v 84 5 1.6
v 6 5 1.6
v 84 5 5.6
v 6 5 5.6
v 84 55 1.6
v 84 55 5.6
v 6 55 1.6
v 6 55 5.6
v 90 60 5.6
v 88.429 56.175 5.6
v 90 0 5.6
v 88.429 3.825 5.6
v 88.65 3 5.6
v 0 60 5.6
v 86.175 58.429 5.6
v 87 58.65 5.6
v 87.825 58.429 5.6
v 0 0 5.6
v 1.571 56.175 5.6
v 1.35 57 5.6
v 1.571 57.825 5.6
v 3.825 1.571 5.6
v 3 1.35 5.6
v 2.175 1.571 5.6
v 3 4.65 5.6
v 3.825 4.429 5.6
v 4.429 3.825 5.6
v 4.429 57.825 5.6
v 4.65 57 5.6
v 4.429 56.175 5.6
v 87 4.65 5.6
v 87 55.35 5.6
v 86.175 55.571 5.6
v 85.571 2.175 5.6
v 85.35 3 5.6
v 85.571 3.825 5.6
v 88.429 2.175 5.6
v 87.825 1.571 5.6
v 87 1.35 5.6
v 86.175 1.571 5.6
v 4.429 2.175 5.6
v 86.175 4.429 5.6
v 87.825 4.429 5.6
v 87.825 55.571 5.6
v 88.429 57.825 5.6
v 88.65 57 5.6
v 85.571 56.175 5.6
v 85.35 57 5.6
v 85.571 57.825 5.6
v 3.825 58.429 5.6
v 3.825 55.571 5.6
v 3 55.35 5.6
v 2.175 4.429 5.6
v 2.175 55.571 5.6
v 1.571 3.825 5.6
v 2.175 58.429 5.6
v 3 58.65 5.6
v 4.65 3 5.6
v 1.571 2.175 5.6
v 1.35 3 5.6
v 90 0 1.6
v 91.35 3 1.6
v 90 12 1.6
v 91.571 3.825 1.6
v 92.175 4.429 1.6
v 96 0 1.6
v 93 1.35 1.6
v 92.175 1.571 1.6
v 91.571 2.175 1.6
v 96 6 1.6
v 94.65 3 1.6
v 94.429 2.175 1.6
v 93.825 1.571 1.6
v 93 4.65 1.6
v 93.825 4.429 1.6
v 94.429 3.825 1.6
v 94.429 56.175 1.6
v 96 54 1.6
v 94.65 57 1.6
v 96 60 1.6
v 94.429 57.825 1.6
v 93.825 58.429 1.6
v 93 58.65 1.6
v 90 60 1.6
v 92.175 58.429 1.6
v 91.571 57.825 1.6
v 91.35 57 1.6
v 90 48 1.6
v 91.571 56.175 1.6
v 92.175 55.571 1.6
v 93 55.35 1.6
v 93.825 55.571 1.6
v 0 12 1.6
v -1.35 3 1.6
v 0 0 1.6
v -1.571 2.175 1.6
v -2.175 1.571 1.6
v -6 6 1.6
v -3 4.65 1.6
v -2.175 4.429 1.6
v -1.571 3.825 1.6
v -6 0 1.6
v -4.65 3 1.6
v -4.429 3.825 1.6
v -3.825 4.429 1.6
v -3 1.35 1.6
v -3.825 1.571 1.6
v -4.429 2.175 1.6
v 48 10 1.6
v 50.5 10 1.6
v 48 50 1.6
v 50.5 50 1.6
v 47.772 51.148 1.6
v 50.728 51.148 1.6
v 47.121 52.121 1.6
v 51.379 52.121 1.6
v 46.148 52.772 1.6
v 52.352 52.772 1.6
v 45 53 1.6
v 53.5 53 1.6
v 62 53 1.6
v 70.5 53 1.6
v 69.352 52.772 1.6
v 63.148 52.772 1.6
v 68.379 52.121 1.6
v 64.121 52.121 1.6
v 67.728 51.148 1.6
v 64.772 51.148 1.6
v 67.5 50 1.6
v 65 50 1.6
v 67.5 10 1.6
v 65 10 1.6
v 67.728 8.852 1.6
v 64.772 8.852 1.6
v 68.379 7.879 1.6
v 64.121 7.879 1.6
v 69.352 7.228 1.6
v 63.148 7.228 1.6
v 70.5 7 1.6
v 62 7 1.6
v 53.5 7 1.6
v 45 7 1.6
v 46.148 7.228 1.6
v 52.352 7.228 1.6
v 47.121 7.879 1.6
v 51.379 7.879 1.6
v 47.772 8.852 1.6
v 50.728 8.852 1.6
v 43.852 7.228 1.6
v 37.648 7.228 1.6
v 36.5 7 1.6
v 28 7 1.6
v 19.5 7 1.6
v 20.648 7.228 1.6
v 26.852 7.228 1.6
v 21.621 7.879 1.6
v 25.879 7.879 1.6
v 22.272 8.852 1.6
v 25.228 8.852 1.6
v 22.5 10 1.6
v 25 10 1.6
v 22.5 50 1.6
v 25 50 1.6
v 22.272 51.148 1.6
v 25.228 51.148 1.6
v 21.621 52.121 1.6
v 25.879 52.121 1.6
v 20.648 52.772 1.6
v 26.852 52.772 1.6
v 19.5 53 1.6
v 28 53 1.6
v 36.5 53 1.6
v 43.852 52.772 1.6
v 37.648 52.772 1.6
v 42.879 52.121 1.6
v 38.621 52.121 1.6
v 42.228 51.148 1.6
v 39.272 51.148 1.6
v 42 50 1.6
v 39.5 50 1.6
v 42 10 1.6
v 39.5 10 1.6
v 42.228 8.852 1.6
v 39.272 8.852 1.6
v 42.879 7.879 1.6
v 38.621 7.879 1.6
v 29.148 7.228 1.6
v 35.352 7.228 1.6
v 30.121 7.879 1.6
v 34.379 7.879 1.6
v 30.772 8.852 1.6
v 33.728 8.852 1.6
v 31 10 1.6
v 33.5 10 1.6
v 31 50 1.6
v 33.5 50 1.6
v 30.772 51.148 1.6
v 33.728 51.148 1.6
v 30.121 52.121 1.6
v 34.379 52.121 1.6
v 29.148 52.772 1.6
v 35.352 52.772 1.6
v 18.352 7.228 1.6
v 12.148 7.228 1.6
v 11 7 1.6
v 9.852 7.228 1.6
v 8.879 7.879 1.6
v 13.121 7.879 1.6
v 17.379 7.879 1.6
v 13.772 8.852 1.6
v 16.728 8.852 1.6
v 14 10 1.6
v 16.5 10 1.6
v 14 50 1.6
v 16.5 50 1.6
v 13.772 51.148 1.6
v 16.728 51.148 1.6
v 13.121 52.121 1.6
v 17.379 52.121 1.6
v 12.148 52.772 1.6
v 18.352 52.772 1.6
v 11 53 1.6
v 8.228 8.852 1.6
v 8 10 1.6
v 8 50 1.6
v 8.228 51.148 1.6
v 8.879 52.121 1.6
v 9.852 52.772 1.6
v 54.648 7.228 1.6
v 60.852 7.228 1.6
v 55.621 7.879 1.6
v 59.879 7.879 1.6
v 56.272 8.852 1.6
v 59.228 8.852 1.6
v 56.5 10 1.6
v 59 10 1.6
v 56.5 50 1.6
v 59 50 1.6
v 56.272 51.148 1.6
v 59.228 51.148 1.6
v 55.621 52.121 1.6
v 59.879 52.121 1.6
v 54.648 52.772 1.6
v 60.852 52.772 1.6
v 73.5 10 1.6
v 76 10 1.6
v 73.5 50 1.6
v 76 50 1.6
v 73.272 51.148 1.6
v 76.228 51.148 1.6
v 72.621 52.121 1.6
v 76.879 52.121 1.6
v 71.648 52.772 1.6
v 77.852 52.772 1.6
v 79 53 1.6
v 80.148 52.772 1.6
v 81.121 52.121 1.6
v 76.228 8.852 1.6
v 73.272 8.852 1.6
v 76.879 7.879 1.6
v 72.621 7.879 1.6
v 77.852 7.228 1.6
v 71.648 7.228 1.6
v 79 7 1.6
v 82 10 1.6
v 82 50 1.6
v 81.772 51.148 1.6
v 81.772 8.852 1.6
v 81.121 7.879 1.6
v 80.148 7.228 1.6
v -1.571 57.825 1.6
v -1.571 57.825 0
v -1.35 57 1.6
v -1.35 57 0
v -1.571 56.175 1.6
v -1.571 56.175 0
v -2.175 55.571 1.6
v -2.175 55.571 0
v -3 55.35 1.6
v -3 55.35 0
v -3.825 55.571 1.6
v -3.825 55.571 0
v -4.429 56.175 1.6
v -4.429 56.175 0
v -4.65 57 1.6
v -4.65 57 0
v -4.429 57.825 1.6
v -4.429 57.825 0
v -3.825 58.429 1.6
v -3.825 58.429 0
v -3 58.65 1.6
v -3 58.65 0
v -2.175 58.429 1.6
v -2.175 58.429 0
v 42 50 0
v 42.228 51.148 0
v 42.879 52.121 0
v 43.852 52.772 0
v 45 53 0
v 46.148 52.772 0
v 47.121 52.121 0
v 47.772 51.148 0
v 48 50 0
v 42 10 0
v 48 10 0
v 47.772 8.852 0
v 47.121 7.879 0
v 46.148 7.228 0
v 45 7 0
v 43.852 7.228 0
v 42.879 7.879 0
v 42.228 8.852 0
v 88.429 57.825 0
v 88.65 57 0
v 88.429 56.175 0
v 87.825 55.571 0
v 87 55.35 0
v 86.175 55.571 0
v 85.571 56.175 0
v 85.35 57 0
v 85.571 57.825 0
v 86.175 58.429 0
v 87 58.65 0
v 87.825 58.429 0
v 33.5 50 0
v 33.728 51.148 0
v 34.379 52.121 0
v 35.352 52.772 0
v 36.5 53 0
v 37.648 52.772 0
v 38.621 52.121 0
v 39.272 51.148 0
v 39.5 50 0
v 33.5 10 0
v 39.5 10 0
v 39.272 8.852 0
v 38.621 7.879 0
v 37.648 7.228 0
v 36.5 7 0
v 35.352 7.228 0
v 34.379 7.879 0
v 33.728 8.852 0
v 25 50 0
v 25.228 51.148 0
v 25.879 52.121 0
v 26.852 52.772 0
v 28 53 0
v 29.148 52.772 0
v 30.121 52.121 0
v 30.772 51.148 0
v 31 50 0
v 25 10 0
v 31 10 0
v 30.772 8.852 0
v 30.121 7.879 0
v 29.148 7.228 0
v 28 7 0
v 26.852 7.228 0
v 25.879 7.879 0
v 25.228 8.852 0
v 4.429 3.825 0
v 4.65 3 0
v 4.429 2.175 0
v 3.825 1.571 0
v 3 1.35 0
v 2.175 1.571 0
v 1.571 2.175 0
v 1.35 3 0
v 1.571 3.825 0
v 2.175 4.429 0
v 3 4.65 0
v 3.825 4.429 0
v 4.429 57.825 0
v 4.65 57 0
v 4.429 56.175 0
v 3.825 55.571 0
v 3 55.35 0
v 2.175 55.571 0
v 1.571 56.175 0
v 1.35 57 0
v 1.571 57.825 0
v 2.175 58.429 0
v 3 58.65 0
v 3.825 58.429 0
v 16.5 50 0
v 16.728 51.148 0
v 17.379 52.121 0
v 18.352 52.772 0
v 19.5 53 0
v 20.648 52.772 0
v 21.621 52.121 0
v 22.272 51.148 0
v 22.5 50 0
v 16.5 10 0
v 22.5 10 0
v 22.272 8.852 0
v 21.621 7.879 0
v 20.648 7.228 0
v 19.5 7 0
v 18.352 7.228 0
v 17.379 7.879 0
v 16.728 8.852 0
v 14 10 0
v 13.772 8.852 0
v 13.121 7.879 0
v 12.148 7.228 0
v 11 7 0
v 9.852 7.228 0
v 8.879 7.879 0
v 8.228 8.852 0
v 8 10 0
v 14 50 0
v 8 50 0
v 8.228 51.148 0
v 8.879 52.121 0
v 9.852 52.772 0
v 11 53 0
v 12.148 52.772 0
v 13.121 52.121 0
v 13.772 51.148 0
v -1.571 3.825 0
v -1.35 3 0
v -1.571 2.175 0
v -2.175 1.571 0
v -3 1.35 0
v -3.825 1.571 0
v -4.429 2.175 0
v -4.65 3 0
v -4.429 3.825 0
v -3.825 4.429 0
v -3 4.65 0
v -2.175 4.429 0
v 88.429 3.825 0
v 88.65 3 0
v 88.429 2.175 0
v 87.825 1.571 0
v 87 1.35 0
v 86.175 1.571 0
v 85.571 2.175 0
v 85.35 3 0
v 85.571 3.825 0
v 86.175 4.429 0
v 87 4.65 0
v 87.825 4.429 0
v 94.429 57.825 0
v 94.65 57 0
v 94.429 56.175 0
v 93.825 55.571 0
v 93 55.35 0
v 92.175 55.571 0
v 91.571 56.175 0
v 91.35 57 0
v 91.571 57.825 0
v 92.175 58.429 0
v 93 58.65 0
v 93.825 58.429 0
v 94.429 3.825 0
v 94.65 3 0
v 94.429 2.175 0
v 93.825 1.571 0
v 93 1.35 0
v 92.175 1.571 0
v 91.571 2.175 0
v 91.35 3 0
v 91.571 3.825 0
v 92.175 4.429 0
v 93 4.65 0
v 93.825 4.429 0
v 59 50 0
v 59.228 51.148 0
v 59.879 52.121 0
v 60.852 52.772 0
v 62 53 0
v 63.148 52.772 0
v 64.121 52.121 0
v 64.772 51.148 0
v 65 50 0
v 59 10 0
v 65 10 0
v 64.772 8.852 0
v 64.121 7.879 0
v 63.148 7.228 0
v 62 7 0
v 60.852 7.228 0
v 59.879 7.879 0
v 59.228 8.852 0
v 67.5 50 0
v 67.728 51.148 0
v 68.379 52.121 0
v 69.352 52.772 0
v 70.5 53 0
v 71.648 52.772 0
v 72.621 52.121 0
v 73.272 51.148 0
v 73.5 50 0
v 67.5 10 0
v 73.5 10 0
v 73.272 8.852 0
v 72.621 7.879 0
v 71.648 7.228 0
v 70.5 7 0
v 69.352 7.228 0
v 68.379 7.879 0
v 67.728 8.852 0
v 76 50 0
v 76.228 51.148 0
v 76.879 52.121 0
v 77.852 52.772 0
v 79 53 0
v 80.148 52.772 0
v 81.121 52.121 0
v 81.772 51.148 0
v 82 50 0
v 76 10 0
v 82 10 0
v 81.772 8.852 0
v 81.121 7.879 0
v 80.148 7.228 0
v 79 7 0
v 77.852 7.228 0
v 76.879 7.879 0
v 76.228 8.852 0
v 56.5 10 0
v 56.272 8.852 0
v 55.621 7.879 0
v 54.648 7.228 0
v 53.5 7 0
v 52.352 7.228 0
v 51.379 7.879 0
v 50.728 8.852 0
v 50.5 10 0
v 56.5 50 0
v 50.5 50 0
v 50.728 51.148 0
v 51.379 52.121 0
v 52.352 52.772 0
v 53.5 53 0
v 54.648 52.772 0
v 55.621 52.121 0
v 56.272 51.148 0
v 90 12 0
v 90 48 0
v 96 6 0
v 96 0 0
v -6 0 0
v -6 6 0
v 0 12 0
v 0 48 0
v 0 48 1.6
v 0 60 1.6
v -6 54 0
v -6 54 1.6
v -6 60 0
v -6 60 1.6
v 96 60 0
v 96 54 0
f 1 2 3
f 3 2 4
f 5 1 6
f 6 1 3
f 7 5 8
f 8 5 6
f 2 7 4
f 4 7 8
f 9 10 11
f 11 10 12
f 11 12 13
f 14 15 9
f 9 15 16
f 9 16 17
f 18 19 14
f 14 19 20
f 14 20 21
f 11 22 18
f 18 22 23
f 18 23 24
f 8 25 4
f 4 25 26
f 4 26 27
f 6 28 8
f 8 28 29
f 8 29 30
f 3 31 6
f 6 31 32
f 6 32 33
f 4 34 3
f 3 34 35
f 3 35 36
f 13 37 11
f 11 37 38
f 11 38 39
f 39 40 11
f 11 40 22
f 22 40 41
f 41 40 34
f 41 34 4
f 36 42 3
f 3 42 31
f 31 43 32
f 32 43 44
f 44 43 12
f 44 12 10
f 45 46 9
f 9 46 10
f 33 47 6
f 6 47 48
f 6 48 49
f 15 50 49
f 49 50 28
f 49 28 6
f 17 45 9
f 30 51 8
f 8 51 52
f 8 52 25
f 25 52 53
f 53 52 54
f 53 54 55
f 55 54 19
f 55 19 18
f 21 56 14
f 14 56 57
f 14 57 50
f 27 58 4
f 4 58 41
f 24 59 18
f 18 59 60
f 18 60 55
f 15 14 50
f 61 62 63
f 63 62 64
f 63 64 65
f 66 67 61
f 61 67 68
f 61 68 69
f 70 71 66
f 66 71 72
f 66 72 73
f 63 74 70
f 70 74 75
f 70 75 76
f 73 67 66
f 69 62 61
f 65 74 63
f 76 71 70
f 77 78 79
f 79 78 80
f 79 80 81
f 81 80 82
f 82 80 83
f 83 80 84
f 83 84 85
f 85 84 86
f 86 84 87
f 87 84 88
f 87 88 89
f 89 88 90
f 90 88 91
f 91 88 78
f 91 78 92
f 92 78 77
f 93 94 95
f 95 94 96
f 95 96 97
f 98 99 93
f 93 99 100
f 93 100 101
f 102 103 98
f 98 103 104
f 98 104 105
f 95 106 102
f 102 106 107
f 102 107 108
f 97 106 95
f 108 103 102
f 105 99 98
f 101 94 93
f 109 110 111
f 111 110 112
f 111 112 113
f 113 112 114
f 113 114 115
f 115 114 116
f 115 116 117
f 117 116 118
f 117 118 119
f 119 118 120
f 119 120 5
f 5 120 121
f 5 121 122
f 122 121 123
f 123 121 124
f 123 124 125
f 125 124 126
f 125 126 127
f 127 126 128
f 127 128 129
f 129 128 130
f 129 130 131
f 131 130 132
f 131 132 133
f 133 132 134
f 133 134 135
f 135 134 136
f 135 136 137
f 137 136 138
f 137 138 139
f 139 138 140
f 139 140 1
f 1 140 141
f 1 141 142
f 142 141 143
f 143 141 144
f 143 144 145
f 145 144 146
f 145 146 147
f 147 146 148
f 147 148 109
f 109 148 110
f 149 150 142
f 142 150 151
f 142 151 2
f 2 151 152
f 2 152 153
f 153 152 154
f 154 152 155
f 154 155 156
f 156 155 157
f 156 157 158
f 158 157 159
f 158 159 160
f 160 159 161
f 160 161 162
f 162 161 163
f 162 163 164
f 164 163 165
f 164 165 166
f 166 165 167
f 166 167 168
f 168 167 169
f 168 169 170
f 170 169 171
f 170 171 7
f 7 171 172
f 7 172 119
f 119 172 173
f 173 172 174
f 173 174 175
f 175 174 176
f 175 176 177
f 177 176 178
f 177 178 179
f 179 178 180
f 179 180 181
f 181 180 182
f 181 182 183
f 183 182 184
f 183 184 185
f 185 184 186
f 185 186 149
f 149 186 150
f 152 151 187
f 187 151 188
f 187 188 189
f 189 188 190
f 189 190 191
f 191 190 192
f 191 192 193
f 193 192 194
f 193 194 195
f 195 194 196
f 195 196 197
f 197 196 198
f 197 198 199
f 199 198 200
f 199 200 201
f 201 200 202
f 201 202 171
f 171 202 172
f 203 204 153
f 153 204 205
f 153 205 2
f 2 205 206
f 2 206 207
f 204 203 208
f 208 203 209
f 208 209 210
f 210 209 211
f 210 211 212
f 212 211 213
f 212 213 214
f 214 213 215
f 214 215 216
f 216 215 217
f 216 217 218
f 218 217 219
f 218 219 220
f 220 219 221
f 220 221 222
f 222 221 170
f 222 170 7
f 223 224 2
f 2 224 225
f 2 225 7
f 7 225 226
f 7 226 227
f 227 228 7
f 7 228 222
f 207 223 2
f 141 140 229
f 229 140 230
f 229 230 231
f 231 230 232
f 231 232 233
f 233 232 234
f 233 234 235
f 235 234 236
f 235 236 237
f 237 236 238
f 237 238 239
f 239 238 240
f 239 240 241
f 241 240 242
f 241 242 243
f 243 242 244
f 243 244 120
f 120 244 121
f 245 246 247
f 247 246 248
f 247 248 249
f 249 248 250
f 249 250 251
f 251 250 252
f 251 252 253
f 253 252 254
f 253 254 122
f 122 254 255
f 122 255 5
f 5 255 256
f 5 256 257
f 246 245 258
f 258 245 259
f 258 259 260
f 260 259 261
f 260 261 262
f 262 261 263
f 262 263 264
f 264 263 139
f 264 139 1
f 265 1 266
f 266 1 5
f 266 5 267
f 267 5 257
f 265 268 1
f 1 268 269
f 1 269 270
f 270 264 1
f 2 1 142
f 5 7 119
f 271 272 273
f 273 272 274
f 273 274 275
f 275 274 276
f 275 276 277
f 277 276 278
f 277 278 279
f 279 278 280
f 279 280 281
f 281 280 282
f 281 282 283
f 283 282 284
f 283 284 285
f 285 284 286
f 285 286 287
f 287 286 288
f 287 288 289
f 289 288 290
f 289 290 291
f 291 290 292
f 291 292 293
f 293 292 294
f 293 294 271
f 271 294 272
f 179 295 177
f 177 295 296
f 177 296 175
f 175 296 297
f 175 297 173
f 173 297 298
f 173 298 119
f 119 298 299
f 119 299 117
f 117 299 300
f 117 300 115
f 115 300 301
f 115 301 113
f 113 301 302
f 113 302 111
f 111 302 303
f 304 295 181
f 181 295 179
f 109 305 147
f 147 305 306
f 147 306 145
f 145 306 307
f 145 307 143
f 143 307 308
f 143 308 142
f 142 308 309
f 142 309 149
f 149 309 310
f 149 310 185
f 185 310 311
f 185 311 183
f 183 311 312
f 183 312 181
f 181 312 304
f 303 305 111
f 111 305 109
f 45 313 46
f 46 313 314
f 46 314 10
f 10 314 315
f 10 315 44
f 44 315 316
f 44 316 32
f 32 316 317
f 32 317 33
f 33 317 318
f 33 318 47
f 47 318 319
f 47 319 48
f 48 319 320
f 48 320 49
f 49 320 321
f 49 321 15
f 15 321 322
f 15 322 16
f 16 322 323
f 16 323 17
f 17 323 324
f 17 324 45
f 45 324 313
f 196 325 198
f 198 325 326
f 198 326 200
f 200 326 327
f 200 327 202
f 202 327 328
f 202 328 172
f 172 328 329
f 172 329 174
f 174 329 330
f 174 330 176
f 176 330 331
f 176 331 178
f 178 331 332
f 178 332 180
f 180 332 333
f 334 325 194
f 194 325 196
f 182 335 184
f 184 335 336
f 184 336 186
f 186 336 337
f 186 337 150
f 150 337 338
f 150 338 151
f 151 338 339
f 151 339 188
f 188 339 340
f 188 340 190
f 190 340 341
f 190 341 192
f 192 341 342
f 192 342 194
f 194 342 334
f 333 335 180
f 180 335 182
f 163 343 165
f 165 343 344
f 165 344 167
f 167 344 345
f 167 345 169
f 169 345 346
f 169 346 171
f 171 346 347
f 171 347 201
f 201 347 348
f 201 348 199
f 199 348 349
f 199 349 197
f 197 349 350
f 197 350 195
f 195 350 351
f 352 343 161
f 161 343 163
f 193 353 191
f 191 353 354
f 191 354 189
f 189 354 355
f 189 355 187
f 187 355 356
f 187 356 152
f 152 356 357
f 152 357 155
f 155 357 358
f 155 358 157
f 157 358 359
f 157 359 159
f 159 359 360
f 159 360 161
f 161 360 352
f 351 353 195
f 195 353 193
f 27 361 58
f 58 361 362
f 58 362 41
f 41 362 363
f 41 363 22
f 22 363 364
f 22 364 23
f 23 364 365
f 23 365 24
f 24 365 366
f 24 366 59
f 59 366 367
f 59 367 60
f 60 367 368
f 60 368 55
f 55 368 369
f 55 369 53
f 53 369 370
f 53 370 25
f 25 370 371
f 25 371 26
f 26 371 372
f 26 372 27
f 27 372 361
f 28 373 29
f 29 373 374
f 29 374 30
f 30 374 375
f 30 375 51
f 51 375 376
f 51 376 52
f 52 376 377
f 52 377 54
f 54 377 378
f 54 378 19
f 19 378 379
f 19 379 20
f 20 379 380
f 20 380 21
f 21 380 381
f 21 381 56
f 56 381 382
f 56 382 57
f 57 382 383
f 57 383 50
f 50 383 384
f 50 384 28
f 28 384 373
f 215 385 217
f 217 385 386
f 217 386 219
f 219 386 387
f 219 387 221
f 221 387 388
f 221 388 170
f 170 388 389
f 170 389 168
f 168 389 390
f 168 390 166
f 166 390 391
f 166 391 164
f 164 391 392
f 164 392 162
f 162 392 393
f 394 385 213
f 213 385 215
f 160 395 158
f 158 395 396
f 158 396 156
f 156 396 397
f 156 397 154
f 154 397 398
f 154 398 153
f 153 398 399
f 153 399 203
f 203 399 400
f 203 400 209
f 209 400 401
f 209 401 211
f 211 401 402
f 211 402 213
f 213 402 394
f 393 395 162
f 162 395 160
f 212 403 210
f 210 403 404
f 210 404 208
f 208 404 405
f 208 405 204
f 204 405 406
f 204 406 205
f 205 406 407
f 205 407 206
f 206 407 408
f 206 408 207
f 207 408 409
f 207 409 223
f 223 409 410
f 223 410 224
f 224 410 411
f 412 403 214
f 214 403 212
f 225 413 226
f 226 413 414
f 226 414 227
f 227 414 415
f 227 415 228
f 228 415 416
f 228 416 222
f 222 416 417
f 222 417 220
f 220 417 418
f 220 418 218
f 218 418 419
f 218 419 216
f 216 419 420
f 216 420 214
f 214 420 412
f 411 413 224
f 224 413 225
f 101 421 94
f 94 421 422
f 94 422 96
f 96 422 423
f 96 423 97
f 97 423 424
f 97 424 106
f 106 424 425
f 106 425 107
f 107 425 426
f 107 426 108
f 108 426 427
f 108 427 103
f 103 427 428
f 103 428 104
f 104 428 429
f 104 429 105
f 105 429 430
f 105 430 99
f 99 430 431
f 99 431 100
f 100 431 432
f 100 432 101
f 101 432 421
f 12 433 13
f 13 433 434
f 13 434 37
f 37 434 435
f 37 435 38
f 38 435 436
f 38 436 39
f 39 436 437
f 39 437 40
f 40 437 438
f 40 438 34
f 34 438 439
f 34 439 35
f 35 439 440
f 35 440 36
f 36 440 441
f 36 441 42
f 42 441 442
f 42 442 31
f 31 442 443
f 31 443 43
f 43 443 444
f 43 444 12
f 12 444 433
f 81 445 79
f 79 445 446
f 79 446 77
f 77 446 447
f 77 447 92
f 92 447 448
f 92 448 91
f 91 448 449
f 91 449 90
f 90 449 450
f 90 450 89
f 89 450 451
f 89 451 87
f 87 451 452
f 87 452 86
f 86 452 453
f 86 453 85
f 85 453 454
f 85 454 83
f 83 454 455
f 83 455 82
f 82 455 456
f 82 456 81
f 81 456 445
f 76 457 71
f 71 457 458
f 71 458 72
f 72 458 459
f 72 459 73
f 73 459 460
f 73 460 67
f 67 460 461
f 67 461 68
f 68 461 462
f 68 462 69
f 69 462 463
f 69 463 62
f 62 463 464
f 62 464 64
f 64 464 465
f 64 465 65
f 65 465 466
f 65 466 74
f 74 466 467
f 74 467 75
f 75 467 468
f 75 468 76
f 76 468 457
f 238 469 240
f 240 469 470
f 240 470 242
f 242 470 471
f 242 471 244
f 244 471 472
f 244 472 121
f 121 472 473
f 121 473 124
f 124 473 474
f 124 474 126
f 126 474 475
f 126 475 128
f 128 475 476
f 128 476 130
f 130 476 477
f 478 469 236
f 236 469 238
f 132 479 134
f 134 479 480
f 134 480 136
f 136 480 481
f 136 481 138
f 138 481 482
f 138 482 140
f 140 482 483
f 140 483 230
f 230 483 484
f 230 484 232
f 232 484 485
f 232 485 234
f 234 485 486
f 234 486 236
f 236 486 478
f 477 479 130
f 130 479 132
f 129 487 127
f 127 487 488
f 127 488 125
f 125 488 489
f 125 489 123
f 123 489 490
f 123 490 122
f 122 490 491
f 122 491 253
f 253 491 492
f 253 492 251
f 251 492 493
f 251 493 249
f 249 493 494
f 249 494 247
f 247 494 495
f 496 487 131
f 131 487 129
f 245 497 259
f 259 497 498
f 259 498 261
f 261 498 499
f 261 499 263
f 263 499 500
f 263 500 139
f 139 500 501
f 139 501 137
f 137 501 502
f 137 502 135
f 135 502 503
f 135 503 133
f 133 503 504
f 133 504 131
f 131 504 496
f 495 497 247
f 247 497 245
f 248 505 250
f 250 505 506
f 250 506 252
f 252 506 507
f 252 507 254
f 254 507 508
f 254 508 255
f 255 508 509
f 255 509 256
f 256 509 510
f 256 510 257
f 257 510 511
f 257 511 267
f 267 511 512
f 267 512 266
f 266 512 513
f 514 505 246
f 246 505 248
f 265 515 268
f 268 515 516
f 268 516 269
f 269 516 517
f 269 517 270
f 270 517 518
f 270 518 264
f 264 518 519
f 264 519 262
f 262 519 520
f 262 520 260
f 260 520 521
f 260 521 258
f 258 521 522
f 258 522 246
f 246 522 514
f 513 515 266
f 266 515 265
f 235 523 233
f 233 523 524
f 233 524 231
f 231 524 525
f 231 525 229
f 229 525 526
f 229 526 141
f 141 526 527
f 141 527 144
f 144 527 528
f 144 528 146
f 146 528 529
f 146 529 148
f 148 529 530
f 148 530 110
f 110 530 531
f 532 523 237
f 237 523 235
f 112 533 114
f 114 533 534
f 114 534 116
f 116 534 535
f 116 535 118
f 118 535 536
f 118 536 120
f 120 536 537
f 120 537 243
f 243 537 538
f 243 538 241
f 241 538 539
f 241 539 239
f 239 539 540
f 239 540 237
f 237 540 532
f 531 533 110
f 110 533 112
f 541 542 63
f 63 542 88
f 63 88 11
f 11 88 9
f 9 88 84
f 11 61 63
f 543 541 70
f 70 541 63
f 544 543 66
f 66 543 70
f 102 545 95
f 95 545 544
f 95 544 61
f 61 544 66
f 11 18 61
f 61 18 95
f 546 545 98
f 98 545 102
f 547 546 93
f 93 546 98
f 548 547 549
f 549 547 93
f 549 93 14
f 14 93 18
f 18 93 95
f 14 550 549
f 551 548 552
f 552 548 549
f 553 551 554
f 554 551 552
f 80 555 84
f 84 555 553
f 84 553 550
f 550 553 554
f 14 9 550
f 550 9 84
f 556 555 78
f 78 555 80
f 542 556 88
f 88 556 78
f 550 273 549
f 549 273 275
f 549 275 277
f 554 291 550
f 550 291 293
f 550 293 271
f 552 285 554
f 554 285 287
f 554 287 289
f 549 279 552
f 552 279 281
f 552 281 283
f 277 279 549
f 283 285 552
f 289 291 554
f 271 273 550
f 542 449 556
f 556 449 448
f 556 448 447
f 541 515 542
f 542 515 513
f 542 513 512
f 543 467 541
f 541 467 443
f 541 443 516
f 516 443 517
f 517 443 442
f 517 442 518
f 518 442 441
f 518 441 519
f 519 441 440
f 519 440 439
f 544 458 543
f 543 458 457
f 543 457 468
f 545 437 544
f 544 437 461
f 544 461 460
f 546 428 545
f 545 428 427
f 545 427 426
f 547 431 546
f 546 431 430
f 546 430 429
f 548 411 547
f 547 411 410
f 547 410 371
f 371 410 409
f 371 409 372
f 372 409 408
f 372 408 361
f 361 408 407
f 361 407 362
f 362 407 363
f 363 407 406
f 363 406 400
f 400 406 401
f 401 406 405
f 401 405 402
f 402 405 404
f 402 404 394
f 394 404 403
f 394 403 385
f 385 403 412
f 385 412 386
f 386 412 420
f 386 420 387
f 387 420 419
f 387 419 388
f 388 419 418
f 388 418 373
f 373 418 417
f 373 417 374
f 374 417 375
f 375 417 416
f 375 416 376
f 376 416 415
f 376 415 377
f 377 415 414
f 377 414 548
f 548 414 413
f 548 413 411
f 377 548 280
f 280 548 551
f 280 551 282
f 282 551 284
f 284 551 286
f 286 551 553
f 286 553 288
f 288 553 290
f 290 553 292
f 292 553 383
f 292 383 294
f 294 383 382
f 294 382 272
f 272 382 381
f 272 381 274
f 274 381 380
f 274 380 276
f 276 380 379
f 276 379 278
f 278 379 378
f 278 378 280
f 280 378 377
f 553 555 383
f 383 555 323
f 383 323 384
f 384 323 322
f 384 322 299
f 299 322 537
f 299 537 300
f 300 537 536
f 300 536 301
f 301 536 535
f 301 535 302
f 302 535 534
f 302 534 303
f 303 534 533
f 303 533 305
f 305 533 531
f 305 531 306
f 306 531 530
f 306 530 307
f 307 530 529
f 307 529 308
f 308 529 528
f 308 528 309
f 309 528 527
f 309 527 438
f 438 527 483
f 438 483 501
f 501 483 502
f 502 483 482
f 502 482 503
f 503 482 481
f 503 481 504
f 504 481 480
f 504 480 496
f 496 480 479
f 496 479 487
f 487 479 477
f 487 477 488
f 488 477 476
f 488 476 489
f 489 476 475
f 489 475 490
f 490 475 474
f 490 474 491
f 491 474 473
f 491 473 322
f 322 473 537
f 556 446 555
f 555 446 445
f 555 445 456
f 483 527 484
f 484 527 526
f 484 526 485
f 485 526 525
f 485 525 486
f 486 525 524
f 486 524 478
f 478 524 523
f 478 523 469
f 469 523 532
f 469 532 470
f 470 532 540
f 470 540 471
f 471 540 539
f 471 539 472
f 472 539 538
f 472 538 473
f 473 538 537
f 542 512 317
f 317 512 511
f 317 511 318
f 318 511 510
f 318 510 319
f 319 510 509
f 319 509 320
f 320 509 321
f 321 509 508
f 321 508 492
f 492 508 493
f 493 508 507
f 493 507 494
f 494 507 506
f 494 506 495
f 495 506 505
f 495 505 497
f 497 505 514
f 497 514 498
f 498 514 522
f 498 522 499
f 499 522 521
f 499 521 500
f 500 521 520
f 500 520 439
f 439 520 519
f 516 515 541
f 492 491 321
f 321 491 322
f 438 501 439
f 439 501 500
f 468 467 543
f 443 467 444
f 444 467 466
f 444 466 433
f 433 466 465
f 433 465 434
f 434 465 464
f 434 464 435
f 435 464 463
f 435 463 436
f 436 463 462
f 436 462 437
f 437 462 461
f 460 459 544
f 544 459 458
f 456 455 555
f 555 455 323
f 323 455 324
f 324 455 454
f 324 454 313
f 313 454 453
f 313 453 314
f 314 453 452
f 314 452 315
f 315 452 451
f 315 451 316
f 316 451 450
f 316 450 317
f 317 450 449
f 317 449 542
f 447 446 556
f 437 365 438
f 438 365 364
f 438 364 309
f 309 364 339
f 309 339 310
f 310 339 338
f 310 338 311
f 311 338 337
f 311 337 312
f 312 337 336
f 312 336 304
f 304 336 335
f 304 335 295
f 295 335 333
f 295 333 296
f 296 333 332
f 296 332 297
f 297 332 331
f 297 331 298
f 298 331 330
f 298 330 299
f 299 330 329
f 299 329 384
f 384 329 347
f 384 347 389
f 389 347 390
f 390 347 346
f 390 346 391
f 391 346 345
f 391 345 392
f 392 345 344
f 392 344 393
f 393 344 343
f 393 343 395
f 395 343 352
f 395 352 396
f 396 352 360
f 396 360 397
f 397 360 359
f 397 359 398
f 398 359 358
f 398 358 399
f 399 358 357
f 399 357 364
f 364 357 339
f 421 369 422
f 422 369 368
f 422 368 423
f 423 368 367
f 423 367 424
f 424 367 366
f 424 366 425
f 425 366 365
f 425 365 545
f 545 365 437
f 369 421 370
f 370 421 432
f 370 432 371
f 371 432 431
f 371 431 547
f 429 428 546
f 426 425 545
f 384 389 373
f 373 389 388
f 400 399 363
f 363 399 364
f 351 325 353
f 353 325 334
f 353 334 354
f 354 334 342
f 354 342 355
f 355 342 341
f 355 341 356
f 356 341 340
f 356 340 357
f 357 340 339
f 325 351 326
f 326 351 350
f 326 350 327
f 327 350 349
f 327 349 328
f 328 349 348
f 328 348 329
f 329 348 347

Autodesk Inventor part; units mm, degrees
ref_plane "YZ Plane" through (0, 0, 0) normal (1, 0, 0) x (0, 1, 0)
ref_plane "XZ Plane" through (0, 0, 0) normal (0, 1, 0) x (-1, 0, 0)
ref_plane "XY Plane" through (0, 0, 0) normal (0, 0, 1) x (1, 0, 0)
sketch "Sketch1" plane through (0, 0, 0) normal (0, 0, 1) x (1, 0, 0)
  line L0 (0, 0) -> (90, 0)
  line L1 (90, 0) -> (90, 60)
  line L2 (90, 60) -> (0, 60)
  line L3 (0, 60) -> (0, 0)
  line L4 (-10, 30) -> (100, 30)
  line L5 (8, 10) -> (8, 50)
  line L6 (14, 10) -> (14, 50)
  arc A0 (14, 50) -> (8, 50) centre (11, 50) ccw
  arc A1 (8, 10) -> (14, 10) centre (11, 10) ccw
  arc A2 (22.5, 50) -> (16.5, 50) centre (19.5, 50) ccw
  line L7 (16.5, 10) -> (16.5, 50)
  line L8 (22.5, 10) -> (22.5, 50)
  arc A3 (16.5, 10) -> (22.5, 10) centre (19.5, 10) ccw
  arc A4 (31, 50) -> (25, 50) centre (28, 50) ccw
  line L9 (25, 10) -> (25, 50)
  line L10 (31, 10) -> (31, 50)
  arc A5 (25, 10) -> (31, 10) centre (28, 10) ccw
  arc A6 (39.5, 50) -> (33.5, 50) centre (36.5, 50) ccw
  line L11 (33.5, 10) -> (33.5, 50)
  line L12 (39.5, 10) -> (39.5, 50)
  arc A7 (33.5, 10) -> (39.5, 10) centre (36.5, 10) ccw
  arc A8 (48, 50) -> (42, 50) centre (45, 50) ccw
  line L13 (42, 10) -> (42, 50)
  line L14 (48, 10) -> (48, 50)
  arc A9 (42, 10) -> (48, 10) centre (45, 10) ccw
  arc A10 (56.5, 50) -> (50.5, 50) centre (53.5, 50) ccw
  line L15 (50.5, 10) -> (50.5, 50)
  line L16 (56.5, 10) -> (56.5, 50)
  arc A11 (50.5, 10) -> (56.5, 10) centre (53.5, 10) ccw
  line L17 (0, 60) -> (-6, 60)
  line L18 (-6, 60) -> (-6, 54)
  line L19 (-6, 54) -> (0, 48)
  line L20 (0, 0) -> (-6, 0)
  line L21 (-6, 0) -> (-6, 6)
  line L22 (-6, 6) -> (0, 12)
  line L23 (90, 60) -> (96, 60)
  line L24 (96, 60) -> (96, 54)
  line L25 (96, 54) -> (90, 48)
  line L26 (90, 0) -> (96, 0)
  line L27 (96, 0) -> (96, 6)
  line L28 (96, 6) -> (90, 12)
  circle A12 centre (3, 57) radius 1.65
  circle A13 centre (-3, 57) radius 1.65
  line L29 (45, 72.0135) -> (45, -11.3556)
  circle A14 centre (93, 57) radius 1.65
  circle A15 centre (-3, 3) radius 1.65
  circle A16 centre (93, 3) radius 1.65
  circle A17 centre (87, 57) radius 1.65
  circle A18 centre (3, 3) radius 1.65
  circle A19 centre (87, 3) radius 1.65
  arc A20 (65, 50) -> (59, 50) centre (62, 50) ccw
  line L30 (59, 10) -> (59, 50)
  line L31 (65, 10) -> (65, 50)
  arc A21 (59, 10) -> (65, 10) centre (62, 10) ccw
  arc A22 (73.5, 50) -> (67.5, 50) centre (70.5, 50) ccw
  line L32 (67.5, 10) -> (67.5, 50)
  line L33 (73.5, 10) -> (73.5, 50)
  arc A23 (67.5, 10) -> (73.5, 10) centre (70.5, 10) ccw
  arc A24 (82, 50) -> (76, 50) centre (79, 50) ccw
  line L34 (76, 10) -> (76, 50)
  line L35 (82, 10) -> (82, 50)
  arc A25 (76, 10) -> (82, 10) centre (79, 10) ccw
  dimension "d0" = 90
  dimension "d1" = 60
  dimension "d2" = 110
  dimension "d3" = 60
  dimension "d4" = 10
  dimension "d5" = 8
  dimension "d6" = 6
  dimension "d7" = 40
  dimension "d8" = 40
  dimension "d9" = 10
  dimension "d10" = 10
  dimension "d13" = 8.5
  dimension "d18" = 6
  dimension "d19" = 6
  dimension "d20" = 6
  dimension "d21" = 6
  dimension "d22" = 6
  dimension "d23" = 6
  dimension "d24" = 6
  dimension "d25" = 6
  dimension "d26" = 6
  dimension "d27" = 6
  dimension "d28" = 6
  dimension "d29" = 6
  dimension "d30" = 3.3
  dimension "d31" = 3.3
  dimension "d32" = 3
  dimension "d33" = 3
  dimension "d34" = 90
  dimension "d37" = 96
  dimension "d40" = 54
  dimension "d43" = 3
  dimension "d44" = 3
  dimension "d47" = 84
  dimension "d50" = 54
extrude "Extrusion1" add sketch "Sketch1" along normal blind 1.6 contours L3 L4 L5 A1 L6 L7 A3 L8 L9 A5 L10 L11 A7 L12 L13 A9 L29 L0 | L20 L21 L22 L3 | L29 A9 L14 L4 L15 A11 L16 L30 A21 L31 L32 A23 L33 L34 A25 L35 L1 L0 | L1 L28 L27 L26 | L3 L2 L29 A8 L13 L4 L12 A6 L11 L10 A4 L9 L8 A2 L7 L6 A0 L5 | L19 L18 L17 L3 | L4 L35 A24 L34 L33 A22 L32 L31 A20 L30 L16 A10 L15 L14 A8 L29 L2 L1 | L1 L23 L24 L25
sketch "Sketch2" plane through (0, 0, 1.6) normal (0, 0, 1) x (1, 0, 0)
  line L0 (96, 60) -> (-6, 60) projected
  line L1 (0, 0) -> (90, 0)
  line L2 (90, 0) -> (90, 60)
  line L3 (90, 60) -> (0, 60)
  line L4 (0, 60) -> (0, 0)
  line L5 (6, 5) -> (84, 5)
  line L6 (84, 5) -> (84, 55)
  line L7 (84, 55) -> (6, 55)
  line L8 (6, 55) -> (6, 5)
  circle A0 centre (3, 3) radius 1.65 projected
  circle A1 centre (3, 3) radius 1.65
  circle A2 centre (3, 57) radius 1.65 projected
  circle A3 centre (3, 57) radius 1.65
  circle A4 centre (87, 57) radius 1.65 projected
  circle A5 centre (87, 57) radius 1.65
  circle A6 centre (87, 3) radius 1.65 projected
  circle A7 centre (87, 3) radius 1.65
  point P0 (0, 60)
  dimension "d55" = 90
  dimension "d56" = 78
  dimension "d57" = 50
  dimension "d58" = 5
  dimension "d59" = 6
extrude "Extrusion2" add sketch "Sketch2" along normal blind 4
properties part number "IntakeFilterTop" material "PBT Plastic"
